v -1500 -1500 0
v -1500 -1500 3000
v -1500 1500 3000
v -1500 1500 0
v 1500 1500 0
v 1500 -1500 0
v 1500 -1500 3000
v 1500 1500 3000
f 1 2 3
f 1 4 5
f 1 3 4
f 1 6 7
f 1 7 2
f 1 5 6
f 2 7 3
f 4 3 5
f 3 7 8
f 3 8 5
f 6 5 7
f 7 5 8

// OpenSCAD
// room01.scad

// basic room

// note: Units are millimeters
room_width = 3000;
room_height = 3000;
room_depth = 3000;

desk_height = 800;
desk_width = 1000;
desk_depth = 600;

// make a cube 3000mm x 3000mm x 3000mm that is centered on the x and y axis and the floor is on the z axis
// make the alpha 0.5 so we can see inside
// translate the cube up 1500mm so the center is on the z axis
// make the cube blue

color("blue", 0.5) translate([0,0,room_height/2]) cube([room_width,room_width,room_width], center=true);

// make a cube 1000mm x 1000mm x 1000mm that is centered on the x and y axis and the floor is on the z axis
color("brown", 1.0) translate([0,0,desk_height/2]) cube([desk_width,desk_depth,desk_height], center=true);

// echo the version of OpenSCAD we are using
echo(version=version());
